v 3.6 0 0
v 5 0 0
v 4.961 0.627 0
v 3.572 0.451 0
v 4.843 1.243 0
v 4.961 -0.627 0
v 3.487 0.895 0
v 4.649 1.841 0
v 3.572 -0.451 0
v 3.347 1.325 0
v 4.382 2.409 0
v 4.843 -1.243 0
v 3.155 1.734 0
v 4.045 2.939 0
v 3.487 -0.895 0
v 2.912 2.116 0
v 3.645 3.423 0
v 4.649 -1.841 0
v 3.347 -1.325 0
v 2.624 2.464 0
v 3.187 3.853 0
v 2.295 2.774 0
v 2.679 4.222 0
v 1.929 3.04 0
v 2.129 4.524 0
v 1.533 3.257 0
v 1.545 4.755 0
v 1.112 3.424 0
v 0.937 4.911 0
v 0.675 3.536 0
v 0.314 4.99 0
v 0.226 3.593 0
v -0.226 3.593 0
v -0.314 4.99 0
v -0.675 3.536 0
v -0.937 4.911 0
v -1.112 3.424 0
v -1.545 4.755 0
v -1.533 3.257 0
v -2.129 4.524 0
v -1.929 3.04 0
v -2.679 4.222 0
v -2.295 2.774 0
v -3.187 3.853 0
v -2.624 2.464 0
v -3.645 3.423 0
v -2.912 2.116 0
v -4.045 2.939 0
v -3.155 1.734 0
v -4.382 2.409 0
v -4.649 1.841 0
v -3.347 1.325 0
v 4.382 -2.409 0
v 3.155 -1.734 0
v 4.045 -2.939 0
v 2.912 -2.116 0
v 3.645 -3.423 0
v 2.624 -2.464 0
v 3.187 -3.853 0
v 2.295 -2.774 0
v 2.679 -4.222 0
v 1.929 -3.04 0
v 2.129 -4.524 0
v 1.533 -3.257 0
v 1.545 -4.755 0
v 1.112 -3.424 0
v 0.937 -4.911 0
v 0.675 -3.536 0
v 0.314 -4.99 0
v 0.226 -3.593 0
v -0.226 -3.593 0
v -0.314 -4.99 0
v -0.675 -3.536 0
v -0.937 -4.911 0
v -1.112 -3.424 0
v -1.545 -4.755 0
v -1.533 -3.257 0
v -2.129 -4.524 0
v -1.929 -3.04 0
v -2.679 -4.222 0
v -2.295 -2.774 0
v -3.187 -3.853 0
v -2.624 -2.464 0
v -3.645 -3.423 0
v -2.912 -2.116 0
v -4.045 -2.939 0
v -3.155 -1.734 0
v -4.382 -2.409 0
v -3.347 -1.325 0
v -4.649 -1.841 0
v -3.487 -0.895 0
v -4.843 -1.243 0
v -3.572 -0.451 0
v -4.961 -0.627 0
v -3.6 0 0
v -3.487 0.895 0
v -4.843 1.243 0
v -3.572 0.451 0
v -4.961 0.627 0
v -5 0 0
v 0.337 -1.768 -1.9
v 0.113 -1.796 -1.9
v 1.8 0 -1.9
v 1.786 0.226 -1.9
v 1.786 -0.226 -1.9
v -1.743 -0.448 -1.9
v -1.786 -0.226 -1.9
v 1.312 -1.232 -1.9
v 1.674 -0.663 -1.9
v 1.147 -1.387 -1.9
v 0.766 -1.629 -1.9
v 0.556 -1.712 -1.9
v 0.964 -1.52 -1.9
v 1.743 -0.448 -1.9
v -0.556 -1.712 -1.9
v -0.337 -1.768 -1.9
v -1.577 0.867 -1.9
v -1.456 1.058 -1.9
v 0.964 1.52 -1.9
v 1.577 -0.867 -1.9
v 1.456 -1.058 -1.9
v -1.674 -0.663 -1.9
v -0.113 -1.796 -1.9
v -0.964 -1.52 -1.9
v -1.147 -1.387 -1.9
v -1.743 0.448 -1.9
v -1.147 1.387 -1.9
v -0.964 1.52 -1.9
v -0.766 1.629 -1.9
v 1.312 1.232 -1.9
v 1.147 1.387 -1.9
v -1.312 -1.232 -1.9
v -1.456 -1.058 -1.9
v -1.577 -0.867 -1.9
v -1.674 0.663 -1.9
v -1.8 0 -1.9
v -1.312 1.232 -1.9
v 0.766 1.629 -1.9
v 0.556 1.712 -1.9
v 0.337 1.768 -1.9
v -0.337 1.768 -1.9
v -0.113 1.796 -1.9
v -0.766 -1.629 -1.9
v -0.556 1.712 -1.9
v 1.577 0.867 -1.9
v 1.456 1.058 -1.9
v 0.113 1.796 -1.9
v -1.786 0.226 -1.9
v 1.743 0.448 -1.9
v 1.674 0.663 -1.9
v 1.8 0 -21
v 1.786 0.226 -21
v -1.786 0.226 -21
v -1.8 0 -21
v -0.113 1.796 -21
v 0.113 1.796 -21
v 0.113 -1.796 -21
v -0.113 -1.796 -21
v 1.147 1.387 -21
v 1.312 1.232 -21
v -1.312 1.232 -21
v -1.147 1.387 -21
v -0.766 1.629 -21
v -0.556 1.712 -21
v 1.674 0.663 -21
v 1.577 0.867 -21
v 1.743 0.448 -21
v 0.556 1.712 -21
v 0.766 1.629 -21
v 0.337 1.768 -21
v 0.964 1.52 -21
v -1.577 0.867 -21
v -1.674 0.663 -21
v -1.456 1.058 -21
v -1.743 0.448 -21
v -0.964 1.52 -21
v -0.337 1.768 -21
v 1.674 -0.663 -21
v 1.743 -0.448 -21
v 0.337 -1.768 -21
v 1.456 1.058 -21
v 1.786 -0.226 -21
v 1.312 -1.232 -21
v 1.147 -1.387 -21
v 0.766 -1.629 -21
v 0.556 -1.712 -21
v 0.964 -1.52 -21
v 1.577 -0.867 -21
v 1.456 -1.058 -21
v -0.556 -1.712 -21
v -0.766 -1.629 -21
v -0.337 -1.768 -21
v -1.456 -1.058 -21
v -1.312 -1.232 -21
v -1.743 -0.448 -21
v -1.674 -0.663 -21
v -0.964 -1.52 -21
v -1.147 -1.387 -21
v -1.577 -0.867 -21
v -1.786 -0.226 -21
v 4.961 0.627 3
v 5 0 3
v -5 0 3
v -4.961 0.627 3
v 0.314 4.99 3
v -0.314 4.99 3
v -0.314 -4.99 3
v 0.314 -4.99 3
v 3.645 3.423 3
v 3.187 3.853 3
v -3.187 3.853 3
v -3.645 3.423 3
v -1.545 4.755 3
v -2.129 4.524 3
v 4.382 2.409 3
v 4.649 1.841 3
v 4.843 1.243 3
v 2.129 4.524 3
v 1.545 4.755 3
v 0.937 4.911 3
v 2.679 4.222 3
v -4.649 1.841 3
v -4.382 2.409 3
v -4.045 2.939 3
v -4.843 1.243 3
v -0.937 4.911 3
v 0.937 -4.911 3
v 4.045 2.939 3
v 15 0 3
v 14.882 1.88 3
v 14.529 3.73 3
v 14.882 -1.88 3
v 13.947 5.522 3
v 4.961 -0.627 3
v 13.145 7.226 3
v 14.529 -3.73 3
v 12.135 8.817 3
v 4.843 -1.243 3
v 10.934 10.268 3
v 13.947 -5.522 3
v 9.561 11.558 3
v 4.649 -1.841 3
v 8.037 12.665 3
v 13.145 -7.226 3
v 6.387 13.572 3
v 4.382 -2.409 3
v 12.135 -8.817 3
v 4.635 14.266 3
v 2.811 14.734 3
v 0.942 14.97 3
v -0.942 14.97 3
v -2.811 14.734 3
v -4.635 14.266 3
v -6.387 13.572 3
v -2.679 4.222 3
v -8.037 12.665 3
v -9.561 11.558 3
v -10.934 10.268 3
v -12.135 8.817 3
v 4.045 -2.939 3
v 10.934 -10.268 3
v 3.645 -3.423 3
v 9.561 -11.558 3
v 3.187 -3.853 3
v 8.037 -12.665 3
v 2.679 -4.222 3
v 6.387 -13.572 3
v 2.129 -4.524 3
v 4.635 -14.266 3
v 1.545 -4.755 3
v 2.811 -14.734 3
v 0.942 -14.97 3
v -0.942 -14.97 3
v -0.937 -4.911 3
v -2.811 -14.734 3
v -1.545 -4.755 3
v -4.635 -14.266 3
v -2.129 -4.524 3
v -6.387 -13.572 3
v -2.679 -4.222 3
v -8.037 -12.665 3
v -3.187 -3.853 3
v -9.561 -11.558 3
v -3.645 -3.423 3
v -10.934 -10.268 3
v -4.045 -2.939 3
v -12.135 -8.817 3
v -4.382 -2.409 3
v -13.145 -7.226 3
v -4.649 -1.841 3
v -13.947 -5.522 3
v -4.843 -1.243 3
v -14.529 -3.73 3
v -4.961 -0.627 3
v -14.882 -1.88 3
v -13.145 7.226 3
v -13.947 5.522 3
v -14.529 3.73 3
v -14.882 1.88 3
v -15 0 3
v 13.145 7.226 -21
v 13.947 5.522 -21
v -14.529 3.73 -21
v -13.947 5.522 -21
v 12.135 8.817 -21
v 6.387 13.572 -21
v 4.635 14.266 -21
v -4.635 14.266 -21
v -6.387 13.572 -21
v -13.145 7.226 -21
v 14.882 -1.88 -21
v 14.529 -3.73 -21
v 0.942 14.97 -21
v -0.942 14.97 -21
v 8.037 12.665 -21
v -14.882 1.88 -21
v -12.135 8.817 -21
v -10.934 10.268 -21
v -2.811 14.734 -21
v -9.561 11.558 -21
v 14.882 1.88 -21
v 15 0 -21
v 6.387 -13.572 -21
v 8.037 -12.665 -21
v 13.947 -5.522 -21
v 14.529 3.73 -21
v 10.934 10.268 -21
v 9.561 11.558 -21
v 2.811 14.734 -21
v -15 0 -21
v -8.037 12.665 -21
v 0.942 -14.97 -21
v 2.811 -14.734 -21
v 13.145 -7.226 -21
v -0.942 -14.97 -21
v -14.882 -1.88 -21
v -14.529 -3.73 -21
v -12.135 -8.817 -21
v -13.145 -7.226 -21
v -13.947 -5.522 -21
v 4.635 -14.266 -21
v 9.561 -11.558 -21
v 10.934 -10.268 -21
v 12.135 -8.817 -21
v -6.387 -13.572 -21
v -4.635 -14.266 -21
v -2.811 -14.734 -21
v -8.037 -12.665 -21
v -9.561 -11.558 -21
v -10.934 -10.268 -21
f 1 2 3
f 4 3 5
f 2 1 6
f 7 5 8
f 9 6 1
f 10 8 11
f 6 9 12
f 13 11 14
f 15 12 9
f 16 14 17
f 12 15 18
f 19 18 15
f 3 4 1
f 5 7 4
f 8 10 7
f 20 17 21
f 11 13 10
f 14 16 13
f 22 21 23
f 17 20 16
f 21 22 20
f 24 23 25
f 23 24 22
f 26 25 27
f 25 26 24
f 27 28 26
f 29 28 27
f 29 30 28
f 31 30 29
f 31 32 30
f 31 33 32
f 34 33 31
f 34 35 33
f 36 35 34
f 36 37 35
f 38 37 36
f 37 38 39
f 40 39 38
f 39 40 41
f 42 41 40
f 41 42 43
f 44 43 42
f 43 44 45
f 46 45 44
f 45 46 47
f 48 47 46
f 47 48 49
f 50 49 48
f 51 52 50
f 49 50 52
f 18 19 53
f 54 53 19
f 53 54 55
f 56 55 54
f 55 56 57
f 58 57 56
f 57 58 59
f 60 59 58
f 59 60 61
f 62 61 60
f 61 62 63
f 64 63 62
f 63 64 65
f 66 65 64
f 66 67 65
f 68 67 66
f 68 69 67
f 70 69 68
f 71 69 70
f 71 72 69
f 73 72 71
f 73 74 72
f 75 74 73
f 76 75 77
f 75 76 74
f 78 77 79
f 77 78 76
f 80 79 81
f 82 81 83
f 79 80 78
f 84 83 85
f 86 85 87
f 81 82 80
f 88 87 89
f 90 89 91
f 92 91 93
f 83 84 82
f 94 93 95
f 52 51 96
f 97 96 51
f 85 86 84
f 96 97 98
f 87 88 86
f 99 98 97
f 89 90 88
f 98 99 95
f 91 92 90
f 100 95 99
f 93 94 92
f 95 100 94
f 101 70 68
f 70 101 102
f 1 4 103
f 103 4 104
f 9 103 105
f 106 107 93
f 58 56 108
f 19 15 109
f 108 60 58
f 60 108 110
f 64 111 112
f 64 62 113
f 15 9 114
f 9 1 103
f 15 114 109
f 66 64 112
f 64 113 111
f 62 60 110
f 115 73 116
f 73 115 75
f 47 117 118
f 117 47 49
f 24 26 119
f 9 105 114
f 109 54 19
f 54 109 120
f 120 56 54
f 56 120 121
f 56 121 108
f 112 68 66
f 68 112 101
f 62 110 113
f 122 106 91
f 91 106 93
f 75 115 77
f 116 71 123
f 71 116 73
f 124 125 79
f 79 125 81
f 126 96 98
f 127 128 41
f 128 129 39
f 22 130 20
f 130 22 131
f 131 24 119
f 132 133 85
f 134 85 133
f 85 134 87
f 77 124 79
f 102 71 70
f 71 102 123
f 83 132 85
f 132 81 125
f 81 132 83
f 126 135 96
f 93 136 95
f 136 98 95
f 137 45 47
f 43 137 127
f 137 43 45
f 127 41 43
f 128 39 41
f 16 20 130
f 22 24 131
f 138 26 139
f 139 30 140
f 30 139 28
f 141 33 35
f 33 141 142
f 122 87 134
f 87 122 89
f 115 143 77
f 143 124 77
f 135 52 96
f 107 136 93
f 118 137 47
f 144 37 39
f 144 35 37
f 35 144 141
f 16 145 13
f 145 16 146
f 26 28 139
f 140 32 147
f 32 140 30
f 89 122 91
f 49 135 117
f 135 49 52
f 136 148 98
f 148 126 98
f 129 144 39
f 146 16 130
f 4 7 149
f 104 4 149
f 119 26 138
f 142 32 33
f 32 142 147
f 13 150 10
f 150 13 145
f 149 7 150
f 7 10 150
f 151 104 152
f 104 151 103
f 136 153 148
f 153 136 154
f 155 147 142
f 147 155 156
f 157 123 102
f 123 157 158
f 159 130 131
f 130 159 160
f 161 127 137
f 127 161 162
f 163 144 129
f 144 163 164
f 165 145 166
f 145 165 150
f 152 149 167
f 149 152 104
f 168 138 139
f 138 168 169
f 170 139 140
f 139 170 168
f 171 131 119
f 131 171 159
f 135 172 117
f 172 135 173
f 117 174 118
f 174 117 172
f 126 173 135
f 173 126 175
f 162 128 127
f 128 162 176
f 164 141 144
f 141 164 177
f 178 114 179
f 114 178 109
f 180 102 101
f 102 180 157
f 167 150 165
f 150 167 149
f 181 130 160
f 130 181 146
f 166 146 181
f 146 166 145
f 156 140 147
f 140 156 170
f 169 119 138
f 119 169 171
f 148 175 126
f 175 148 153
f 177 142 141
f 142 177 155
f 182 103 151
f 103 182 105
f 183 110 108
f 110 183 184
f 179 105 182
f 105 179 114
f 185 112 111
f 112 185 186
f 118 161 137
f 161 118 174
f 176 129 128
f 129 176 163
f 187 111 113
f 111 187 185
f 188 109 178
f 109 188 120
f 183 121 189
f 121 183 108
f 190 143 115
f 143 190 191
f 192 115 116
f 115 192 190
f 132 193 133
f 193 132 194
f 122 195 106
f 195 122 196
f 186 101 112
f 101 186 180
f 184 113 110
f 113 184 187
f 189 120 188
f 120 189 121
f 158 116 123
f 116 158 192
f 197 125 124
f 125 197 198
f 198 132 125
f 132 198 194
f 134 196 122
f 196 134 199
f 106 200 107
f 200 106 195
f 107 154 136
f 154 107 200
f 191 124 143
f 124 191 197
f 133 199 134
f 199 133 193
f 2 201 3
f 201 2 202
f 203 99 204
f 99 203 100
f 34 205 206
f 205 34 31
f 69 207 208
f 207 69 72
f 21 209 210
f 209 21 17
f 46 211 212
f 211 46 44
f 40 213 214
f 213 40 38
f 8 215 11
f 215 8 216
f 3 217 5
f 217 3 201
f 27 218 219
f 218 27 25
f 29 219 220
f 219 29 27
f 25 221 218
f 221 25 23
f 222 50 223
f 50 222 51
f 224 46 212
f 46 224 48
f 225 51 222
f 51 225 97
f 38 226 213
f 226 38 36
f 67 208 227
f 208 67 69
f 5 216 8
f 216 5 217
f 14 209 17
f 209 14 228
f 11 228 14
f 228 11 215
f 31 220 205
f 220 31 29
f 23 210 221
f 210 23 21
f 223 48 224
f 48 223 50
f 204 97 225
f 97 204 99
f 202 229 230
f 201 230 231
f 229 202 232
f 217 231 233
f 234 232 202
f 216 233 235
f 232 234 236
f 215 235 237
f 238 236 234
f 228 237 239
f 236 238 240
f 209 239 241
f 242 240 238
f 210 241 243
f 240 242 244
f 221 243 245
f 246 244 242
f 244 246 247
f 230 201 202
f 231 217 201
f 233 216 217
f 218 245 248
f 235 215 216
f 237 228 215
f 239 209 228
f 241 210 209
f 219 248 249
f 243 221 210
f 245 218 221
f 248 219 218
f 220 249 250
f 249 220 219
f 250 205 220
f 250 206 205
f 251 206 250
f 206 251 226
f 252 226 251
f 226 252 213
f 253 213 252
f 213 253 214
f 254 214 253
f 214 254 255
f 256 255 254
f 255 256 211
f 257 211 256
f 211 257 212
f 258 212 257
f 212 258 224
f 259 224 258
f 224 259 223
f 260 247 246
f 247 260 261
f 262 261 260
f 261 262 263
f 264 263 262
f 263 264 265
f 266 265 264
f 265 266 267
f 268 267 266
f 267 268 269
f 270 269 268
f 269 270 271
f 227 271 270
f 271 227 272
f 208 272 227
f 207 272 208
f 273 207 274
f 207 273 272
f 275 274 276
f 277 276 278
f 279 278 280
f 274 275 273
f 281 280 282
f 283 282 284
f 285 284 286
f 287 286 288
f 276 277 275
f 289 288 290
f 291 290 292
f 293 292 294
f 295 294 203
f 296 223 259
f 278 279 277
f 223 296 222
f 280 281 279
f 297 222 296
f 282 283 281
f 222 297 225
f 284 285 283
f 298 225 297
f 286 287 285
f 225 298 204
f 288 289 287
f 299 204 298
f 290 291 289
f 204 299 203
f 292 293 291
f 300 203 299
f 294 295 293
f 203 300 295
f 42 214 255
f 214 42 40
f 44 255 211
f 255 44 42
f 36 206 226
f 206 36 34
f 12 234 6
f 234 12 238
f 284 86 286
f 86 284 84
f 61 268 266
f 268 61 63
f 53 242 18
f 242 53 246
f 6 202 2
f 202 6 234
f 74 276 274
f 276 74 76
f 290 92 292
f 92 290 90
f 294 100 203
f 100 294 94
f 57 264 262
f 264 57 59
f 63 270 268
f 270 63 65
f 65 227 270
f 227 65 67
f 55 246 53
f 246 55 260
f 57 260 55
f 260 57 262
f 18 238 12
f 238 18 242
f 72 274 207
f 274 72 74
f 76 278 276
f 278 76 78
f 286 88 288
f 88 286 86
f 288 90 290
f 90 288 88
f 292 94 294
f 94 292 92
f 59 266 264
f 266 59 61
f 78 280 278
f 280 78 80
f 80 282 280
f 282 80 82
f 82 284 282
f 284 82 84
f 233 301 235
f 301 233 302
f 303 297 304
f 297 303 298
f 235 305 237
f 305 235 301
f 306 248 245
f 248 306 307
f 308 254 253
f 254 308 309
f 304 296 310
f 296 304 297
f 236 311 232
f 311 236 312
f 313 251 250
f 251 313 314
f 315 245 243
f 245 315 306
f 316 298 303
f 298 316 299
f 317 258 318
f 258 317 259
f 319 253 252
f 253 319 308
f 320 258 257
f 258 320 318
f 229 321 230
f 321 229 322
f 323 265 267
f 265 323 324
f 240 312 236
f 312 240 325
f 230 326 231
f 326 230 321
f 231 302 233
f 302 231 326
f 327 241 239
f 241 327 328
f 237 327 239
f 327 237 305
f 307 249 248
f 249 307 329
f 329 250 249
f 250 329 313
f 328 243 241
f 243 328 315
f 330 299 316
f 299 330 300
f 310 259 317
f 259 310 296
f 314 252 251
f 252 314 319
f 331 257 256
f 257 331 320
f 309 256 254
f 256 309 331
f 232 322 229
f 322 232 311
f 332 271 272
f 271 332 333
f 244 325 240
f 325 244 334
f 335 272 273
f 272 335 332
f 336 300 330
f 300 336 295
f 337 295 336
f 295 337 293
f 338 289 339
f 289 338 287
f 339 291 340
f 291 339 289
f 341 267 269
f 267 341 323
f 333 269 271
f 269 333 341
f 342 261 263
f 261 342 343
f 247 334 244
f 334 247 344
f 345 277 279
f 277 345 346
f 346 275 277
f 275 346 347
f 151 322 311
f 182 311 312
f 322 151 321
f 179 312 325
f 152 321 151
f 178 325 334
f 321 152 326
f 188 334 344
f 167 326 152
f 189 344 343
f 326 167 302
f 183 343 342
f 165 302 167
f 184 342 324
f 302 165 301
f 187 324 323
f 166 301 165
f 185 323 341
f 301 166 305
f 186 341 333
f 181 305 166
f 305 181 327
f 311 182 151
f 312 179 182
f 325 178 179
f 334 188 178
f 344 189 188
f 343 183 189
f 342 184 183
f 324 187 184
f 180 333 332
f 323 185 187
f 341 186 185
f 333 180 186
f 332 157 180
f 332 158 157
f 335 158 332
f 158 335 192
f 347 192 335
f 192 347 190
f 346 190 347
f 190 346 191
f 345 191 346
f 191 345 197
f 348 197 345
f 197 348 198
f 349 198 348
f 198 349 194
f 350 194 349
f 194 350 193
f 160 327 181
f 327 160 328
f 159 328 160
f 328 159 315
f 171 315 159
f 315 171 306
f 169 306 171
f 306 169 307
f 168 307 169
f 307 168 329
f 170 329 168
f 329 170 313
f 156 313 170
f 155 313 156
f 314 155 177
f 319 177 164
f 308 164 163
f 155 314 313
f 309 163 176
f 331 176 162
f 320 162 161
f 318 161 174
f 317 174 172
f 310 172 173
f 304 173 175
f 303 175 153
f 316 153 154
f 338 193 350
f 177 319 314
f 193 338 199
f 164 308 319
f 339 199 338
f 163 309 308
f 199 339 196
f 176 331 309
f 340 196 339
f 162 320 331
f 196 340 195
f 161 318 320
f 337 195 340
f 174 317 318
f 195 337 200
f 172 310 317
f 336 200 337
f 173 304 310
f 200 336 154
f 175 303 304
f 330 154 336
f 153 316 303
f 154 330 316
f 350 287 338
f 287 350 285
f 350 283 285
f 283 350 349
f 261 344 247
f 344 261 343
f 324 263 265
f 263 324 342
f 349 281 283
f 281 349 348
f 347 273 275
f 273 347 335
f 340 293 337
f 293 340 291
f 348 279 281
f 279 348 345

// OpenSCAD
$fn = 50;

difference() {
	union() {
		translate(v = [0, 0, -21.0]) {
			cylinder(h = 24, r = 15.0);
		}
	}
	union() {
		translate(v = [0, 0, 0]) {
			rotate(a = [0, 0, 0]) {
				difference() {
					union() {
						translate(v = [0, 0, -24.0]) {
							cylinder(h = 24, r = 1.5);
						}
						translate(v = [0, 0, -1.9]) {
							cylinder(h = 1.9, r1 = 1.8, r2 = 3.6);
						}
						translate(v = [0, 0, -24.0]) {
							cylinder(h = 24, r = 1.8);
						}
						translate(v = [0, 0, -24.0]) {
							cylinder(h = 24, r = 1.5);
						}
					}
					union();
				}
			}
		}
		#cylinder(h = 3, r = 5.0);
	}
}
